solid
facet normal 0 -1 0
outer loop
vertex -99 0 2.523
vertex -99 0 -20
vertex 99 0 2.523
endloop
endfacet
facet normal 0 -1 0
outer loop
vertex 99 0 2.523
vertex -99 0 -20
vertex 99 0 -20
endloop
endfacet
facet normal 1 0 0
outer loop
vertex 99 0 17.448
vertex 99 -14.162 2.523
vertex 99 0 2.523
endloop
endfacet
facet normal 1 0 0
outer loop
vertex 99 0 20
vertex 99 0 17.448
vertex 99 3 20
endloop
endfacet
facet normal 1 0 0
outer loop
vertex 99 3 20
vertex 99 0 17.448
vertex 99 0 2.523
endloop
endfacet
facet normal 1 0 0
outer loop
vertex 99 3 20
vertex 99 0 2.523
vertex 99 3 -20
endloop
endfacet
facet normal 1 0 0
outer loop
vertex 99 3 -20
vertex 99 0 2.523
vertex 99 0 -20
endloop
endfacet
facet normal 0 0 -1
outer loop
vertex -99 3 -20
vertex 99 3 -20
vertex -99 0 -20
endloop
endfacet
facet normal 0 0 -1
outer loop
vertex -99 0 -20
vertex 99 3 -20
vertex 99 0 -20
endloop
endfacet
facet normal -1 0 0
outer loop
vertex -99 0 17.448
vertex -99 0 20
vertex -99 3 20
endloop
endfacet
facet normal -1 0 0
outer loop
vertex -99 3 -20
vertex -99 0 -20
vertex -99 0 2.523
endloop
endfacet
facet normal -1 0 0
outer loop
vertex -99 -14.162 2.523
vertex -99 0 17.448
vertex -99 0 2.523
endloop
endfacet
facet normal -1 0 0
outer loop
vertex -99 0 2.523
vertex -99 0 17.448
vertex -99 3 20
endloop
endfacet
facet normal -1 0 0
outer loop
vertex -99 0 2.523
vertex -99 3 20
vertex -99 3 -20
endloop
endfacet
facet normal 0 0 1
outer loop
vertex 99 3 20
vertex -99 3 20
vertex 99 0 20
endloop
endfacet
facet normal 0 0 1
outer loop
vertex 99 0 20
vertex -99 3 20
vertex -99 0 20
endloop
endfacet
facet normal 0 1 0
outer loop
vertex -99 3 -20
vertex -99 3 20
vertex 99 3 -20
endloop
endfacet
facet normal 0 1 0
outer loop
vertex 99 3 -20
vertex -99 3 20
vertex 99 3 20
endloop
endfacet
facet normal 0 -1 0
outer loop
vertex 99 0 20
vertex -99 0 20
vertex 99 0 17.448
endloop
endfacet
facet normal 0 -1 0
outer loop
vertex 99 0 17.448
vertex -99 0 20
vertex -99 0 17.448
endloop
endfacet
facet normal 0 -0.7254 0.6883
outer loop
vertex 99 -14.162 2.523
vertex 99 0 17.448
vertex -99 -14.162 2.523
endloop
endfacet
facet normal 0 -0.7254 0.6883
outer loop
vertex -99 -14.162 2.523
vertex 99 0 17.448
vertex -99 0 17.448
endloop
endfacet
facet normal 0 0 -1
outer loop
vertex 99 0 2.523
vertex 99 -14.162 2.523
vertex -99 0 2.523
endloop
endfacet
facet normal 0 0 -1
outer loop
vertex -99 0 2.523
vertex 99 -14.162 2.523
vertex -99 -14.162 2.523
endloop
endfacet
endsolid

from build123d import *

# Parameters (mm, degrees)
SKETCH1_W           = 198
SKETCH1_H           = 40
BOSS_EXTRUDE1_DEPTH = 3
BOSS_EXTRUDE2_DEPTH = 198


with BuildPart() as part:
    # Sketch1 → Boss-Extrude1 (new body)
    with BuildSketch(Plane(origin=(0, 0, 0), x_dir=(1, 0, 0), z_dir=(0, 1, 0))):
        Rectangle(SKETCH1_W, SKETCH1_H)
    extrude(amount=BOSS_EXTRUDE1_DEPTH)

    # Sketch2 → Boss-Extrude2 (add)
    with BuildSketch(Plane(origin=(-99, 0, 2.522926574), x_dir=(0, 0, 1), z_dir=(-1, 0, 0))):
        Polygon((0, 0), (0, -14.161533961), (14.925088272, 0), align=None)
    extrude(amount=-BOSS_EXTRUDE2_DEPTH)


solid = part.part
